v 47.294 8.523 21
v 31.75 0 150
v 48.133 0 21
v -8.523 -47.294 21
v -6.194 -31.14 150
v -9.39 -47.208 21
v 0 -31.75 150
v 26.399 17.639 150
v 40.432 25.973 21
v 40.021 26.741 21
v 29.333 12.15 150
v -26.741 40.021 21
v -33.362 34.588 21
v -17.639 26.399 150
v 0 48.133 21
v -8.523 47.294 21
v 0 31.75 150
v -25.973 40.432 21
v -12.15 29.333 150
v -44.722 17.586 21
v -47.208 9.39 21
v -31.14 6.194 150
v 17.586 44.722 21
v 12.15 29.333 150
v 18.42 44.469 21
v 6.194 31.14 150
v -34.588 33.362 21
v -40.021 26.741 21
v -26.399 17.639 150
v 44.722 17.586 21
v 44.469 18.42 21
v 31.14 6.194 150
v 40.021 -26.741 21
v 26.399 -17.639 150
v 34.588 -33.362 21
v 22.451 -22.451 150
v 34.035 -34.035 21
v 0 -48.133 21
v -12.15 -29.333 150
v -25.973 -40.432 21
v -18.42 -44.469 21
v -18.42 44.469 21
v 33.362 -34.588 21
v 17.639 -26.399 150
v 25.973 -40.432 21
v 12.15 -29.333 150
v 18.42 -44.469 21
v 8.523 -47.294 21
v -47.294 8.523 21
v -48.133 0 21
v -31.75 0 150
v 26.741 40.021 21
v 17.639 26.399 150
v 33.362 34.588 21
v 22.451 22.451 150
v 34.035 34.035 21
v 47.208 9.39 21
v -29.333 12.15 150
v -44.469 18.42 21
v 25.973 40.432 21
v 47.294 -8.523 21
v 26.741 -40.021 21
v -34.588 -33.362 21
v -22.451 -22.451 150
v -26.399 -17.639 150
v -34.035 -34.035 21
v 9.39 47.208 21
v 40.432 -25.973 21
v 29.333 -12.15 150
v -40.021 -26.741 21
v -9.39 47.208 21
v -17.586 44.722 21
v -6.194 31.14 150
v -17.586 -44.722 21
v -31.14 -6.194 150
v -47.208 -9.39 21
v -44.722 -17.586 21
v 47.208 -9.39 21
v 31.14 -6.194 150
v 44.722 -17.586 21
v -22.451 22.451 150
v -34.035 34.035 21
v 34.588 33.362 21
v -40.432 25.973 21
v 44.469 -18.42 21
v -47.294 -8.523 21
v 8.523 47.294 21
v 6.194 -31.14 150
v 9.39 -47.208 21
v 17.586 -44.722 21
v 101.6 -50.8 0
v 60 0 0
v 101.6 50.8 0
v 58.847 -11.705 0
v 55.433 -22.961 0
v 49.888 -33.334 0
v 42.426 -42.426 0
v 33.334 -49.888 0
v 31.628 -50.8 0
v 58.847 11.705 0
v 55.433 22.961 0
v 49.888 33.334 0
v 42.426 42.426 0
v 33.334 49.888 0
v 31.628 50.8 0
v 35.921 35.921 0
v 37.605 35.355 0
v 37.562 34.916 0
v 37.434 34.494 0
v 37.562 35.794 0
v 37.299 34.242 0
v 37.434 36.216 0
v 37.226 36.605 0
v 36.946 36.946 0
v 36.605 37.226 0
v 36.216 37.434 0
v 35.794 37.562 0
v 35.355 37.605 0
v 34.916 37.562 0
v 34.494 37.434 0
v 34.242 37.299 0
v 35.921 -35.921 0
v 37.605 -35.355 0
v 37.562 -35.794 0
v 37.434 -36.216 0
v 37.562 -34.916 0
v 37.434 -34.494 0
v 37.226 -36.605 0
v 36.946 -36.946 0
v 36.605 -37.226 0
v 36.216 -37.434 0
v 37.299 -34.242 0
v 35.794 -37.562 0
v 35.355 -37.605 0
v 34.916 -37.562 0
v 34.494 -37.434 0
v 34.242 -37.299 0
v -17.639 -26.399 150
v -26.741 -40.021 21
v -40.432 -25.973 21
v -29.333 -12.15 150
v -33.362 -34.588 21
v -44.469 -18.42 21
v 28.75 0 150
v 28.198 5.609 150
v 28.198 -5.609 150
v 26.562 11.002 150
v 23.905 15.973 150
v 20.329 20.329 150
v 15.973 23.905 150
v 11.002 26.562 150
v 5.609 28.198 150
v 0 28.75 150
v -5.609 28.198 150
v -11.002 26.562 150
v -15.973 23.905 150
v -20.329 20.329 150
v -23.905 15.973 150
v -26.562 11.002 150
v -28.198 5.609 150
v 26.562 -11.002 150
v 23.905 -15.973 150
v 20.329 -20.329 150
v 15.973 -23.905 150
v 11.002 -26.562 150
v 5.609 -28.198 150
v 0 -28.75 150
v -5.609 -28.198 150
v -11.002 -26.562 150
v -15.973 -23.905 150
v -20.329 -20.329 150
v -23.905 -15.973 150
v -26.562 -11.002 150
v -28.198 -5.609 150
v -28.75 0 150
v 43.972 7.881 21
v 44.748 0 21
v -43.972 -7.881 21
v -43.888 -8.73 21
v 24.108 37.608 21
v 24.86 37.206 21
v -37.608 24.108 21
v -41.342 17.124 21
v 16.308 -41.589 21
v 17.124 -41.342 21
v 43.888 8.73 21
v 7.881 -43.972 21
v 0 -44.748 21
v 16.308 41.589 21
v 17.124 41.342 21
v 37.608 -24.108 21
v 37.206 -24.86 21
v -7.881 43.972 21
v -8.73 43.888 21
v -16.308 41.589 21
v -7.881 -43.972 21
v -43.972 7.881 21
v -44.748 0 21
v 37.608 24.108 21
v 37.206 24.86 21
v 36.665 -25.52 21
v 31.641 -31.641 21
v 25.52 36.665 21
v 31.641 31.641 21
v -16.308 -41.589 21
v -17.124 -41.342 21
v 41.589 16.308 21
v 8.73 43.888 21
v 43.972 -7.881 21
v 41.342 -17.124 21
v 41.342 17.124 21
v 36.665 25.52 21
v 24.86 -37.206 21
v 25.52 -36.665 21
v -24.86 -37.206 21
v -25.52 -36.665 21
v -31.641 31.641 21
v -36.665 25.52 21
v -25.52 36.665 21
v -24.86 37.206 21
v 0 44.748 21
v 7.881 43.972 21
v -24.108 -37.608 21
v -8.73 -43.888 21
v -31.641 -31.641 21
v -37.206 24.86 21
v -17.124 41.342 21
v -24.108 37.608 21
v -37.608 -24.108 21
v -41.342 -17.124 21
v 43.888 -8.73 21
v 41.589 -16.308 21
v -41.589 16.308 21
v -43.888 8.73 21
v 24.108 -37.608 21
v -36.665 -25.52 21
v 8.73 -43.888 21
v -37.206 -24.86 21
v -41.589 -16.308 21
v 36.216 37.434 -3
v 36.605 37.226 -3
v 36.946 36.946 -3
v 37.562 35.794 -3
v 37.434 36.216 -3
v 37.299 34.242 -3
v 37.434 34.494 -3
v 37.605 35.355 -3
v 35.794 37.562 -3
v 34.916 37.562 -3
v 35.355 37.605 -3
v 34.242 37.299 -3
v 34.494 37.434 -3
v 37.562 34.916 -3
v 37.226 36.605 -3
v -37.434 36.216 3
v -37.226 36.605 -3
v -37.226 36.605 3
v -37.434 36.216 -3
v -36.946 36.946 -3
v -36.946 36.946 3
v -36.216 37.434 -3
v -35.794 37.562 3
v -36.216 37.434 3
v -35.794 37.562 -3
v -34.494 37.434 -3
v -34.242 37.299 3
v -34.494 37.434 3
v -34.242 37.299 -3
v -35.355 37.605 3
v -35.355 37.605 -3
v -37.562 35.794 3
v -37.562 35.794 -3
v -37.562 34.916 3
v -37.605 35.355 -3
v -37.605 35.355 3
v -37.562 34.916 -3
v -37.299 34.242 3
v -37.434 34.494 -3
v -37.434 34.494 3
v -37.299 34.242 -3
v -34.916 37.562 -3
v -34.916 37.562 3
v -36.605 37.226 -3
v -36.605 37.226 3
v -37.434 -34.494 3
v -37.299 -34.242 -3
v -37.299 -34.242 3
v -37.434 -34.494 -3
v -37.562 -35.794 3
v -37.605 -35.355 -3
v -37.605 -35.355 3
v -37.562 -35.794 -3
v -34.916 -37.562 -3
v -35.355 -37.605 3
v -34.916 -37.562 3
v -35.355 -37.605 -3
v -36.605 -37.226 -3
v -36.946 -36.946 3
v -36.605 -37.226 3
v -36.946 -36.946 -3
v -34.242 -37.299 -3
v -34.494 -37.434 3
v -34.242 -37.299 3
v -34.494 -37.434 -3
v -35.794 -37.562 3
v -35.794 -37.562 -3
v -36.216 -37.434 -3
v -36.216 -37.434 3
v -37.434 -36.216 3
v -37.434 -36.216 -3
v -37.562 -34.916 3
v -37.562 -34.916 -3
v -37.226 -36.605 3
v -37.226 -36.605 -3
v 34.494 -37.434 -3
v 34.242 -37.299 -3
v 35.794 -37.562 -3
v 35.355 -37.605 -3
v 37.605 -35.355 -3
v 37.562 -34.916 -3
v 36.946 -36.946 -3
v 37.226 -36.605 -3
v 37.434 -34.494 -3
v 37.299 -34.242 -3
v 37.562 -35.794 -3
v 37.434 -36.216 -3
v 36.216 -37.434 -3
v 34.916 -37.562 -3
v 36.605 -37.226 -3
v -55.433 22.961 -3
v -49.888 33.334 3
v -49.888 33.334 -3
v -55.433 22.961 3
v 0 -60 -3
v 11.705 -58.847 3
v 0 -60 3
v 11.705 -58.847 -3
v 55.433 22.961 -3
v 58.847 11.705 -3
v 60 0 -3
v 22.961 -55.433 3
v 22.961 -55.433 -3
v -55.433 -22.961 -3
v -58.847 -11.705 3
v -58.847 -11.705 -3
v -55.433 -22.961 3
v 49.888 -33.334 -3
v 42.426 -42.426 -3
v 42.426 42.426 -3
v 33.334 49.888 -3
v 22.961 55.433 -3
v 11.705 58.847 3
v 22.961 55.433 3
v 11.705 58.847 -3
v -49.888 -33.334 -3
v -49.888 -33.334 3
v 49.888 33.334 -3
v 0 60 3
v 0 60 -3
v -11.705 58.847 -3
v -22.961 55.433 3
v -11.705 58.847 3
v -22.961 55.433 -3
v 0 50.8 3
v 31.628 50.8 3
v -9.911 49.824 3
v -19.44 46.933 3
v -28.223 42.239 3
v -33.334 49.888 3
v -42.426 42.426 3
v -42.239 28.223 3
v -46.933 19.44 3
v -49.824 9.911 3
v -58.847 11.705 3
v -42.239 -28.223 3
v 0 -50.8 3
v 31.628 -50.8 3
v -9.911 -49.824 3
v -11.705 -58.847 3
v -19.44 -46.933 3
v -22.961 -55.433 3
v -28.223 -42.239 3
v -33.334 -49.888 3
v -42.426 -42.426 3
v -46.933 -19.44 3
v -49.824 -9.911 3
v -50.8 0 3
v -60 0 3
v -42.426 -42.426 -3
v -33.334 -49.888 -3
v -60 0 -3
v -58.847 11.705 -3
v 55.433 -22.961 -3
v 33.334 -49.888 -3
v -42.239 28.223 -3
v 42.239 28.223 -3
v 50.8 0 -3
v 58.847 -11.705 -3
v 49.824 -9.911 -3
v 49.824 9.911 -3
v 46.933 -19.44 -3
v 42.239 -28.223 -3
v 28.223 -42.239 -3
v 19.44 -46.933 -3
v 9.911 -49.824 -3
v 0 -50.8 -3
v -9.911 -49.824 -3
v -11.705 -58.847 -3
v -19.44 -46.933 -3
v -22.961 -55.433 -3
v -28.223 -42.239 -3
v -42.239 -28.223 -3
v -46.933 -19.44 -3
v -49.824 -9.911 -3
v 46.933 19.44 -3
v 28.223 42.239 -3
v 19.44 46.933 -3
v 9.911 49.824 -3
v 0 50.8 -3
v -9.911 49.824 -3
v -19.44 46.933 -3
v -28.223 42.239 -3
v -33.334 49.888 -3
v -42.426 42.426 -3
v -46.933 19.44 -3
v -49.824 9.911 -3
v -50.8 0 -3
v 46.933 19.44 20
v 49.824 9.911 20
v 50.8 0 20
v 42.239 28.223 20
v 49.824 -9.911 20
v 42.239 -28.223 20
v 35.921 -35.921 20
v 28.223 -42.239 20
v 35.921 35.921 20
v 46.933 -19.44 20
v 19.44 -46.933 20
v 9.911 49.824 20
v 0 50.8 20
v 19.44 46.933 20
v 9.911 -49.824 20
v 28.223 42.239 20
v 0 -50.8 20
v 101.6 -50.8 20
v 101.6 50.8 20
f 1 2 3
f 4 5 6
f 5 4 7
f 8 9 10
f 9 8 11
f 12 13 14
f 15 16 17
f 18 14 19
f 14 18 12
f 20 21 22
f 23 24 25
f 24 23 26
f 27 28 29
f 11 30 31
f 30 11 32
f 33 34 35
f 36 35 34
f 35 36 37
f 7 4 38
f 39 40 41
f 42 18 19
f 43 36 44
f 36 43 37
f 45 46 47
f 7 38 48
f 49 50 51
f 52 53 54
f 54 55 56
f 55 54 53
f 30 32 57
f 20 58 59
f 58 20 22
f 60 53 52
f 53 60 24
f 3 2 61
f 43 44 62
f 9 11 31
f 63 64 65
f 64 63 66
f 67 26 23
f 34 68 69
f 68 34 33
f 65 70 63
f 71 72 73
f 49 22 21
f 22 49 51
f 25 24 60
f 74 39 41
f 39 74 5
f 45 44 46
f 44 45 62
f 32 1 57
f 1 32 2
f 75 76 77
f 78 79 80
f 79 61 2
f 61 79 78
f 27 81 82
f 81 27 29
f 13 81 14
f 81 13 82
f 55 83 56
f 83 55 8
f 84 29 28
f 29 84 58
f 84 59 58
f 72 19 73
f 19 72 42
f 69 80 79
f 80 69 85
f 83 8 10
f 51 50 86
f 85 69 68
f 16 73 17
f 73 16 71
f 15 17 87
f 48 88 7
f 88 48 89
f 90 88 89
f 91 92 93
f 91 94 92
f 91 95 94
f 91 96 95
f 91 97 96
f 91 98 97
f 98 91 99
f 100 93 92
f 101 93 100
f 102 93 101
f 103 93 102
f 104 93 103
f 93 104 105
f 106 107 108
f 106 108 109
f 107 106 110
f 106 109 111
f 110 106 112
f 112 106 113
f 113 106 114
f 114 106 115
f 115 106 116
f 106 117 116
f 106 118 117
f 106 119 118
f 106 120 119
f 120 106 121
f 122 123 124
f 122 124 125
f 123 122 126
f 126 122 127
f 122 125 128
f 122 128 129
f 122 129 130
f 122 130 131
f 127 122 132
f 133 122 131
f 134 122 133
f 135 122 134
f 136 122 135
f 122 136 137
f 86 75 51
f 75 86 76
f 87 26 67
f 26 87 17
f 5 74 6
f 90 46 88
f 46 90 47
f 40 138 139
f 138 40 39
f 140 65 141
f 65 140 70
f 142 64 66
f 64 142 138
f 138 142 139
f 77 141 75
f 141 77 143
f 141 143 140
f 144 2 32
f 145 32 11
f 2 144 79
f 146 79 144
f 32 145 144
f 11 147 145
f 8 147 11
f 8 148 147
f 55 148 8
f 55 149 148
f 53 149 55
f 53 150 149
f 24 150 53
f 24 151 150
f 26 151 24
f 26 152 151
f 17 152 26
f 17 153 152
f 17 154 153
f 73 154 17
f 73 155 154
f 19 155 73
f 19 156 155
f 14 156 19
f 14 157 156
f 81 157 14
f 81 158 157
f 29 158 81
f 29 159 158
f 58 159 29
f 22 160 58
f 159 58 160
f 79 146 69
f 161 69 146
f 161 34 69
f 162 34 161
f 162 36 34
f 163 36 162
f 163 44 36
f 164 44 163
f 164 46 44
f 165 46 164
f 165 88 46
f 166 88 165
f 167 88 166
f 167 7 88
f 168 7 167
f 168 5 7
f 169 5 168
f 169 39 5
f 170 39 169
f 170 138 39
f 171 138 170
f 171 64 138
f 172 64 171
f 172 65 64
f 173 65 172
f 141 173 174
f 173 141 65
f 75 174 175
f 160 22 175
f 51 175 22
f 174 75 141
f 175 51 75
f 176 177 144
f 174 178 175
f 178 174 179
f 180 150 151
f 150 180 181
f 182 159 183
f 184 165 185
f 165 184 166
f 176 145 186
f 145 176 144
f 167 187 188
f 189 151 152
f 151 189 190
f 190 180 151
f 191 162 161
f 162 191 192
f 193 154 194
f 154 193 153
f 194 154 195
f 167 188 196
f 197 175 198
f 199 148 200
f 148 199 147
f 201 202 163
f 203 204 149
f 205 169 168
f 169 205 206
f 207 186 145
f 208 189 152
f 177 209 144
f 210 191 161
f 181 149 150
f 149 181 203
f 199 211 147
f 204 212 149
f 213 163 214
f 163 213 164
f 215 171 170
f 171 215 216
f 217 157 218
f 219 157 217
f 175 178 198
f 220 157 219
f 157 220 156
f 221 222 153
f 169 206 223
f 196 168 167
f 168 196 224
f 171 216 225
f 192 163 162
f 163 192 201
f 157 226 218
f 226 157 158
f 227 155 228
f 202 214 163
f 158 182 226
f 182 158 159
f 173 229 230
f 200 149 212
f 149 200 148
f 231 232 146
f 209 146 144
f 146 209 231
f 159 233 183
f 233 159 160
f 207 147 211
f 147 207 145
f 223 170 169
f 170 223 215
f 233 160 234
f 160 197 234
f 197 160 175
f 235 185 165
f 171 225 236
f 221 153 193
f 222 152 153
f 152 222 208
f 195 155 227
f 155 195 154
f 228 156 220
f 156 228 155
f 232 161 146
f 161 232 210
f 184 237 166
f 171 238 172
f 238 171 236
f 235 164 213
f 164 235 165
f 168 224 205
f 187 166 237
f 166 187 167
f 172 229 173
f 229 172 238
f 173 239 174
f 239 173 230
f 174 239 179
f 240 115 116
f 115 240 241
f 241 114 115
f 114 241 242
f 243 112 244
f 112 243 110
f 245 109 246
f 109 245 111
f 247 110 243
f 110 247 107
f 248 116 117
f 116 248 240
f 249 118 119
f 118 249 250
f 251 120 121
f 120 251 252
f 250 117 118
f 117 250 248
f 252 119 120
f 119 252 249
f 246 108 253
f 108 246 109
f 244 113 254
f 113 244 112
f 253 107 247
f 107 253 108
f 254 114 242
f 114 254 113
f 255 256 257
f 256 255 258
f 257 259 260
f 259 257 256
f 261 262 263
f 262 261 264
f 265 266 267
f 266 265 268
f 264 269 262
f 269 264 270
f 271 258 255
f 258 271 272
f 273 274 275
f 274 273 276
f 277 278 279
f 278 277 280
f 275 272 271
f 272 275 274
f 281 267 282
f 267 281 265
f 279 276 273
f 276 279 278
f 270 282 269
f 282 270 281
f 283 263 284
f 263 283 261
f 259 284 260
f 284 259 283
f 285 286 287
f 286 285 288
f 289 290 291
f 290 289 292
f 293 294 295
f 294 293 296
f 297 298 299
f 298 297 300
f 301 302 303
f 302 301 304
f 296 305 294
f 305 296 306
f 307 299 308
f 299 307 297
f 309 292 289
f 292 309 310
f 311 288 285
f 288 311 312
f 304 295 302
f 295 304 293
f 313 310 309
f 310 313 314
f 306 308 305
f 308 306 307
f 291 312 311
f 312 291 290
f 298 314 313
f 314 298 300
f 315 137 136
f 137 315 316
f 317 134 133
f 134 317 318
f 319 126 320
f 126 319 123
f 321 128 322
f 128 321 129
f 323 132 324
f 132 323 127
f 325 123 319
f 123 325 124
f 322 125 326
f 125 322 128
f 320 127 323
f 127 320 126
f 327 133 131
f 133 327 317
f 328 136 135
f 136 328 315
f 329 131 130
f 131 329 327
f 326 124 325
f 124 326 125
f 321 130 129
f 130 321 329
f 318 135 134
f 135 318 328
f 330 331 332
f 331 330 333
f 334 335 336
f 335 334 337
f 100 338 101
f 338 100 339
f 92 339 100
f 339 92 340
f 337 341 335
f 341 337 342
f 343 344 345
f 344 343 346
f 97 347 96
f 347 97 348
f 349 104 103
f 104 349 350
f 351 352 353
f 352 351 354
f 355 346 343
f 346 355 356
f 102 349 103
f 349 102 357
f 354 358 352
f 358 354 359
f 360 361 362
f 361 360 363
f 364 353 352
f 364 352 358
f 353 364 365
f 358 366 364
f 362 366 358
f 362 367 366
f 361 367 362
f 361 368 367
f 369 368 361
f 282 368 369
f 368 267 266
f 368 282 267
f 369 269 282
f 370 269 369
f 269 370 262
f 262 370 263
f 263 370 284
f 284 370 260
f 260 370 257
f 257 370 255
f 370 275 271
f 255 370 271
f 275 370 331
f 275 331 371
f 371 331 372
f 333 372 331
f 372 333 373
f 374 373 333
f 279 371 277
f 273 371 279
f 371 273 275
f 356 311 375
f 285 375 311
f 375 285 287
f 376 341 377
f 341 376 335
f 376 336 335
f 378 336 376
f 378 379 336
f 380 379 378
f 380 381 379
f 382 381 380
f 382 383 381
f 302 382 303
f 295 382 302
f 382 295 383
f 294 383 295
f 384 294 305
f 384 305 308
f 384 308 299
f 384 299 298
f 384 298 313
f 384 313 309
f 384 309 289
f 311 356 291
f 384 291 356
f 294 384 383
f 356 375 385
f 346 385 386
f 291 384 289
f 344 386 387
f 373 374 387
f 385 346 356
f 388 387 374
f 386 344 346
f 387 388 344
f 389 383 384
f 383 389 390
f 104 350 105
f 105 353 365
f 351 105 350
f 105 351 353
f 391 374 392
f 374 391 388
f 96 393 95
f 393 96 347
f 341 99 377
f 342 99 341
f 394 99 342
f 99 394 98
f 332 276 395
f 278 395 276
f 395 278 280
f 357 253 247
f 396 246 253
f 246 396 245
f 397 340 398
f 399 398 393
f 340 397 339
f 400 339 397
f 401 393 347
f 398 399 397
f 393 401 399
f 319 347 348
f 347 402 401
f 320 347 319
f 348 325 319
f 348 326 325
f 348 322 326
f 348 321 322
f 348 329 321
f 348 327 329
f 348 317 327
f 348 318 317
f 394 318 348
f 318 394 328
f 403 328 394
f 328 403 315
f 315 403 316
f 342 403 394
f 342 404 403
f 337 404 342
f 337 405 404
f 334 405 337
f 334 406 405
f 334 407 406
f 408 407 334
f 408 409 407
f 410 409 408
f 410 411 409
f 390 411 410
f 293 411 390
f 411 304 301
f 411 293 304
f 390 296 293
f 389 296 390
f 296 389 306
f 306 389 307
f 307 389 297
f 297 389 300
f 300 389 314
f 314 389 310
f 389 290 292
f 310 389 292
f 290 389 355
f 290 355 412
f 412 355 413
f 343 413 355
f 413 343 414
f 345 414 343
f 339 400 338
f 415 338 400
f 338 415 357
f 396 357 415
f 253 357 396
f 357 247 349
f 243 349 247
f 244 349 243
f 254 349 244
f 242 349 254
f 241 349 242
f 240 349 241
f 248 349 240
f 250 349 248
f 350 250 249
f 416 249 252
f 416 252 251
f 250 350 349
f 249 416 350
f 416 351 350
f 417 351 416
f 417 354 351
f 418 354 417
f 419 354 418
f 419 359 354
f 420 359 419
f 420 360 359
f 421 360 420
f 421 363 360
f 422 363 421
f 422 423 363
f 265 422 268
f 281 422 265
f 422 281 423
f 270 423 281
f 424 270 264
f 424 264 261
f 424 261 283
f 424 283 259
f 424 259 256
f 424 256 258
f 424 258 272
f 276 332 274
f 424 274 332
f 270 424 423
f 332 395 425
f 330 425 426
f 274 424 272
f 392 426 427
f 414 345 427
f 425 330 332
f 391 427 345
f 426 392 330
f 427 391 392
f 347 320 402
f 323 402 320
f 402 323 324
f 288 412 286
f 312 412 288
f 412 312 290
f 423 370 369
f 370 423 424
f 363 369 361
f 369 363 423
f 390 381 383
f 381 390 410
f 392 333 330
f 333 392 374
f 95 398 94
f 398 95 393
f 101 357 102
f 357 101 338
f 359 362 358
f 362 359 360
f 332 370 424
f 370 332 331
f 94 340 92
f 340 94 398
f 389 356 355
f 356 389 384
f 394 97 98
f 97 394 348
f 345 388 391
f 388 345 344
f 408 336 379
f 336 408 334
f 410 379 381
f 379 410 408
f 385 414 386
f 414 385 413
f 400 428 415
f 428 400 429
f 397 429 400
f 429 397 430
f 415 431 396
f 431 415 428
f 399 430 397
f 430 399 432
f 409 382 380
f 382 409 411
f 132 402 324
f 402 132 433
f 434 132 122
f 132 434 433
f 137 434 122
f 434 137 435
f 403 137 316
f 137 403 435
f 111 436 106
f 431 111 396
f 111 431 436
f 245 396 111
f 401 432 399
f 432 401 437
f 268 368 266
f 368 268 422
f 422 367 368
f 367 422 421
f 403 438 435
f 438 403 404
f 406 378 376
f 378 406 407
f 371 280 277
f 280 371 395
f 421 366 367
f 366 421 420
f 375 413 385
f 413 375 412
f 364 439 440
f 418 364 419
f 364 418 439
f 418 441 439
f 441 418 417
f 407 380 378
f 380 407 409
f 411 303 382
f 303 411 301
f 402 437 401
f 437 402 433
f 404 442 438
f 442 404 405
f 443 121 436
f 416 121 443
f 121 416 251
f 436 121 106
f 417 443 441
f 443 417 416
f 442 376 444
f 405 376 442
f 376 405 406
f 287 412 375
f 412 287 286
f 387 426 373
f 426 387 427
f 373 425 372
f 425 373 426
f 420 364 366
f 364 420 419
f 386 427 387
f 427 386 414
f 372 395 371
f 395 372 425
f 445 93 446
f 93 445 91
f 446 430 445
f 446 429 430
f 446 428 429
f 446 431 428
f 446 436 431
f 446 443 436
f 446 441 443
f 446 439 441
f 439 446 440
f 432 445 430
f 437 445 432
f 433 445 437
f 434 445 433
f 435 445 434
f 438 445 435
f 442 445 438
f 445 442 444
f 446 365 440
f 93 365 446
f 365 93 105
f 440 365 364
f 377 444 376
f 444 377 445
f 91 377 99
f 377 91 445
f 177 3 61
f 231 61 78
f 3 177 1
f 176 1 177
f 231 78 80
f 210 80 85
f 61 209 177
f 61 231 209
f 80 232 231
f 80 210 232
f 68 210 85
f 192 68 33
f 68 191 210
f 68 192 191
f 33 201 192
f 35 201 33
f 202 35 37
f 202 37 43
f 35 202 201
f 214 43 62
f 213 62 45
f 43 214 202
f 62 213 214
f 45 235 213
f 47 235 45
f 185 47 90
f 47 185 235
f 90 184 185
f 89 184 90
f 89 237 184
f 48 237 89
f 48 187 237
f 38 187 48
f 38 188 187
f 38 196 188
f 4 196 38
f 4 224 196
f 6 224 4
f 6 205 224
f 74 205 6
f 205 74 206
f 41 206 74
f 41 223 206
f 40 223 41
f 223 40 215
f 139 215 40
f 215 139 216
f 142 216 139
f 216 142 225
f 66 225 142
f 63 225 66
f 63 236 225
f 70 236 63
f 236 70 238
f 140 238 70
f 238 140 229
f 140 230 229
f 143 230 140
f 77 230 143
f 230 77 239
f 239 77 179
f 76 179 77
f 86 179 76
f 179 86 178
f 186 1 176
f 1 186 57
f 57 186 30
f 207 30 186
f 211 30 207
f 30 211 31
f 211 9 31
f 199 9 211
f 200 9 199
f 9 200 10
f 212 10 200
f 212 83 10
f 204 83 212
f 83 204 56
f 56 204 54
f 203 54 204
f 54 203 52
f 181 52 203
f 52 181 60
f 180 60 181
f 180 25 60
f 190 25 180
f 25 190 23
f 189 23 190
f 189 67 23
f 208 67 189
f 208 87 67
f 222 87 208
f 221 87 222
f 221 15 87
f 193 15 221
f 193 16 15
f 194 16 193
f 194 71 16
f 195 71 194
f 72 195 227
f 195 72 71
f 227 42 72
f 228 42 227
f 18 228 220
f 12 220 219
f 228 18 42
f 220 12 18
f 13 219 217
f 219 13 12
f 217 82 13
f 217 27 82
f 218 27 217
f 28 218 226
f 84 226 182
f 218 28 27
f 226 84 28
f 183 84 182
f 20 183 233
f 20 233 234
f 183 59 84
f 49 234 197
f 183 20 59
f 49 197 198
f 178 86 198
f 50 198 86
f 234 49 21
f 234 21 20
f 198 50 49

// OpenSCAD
// file: trap_modules.scad
// ShopVac Rat Trap - Shared Modules
// Updated with actual component dimensions from BOM

// Global resolution
$fn = 32;

// === Tube Parameters ===
tube_outer_diameter = 101.6;  // 4 inches in mm (standard PVC size)
tube_wall_thickness = 3.2;    // Standard wall thickness
tube_inner_diameter = tube_outer_diameter - (2 * tube_wall_thickness);

// === Flange Parameters ===
flange_diameter = 120;         // Outer flange diameter
flange_thickness = 6;          // Flange thickness
flange_screw_hole_diameter = 4.5;  // M4 clearance holes
flange_screw_hole_inset = 10;  // Distance from flange edge

// === Center Joint - Alignment Pins ===
alignment_pin_diameter = 6;    // 6mm diameter pins
alignment_pin_length = 8;      // 8mm insertion depth
alignment_pin_radius = tube_outer_diameter/2 - 25;  // Position on flange
alignment_pin_clearance = 0.3; // Extra clearance for holes

// === Center Joint - O-Ring Seal ===
oring_groove_width = 3;        // Width of groove (for 2.5mm O-ring)
oring_groove_depth = 1.5;      // Depth of groove

// === STEMMA QT Sensor Mounts (Adafruit Standard) ===
// Standard STEMMA QT board: 17.78mm × 25.4mm (0.7" × 1.0")
stemma_qt_board_width = 17.78;   // Standard width
stemma_qt_board_length = 25.4;   // Standard length
stemma_qt_hole_diameter = 2.7;   // M2.5 clearance holes
stemma_qt_hole_spacing_w = 12.7; // Hole spacing width (0.5")
stemma_qt_hole_spacing_l = 20.3; // Hole spacing length (~0.8")
stemma_qt_mount_thickness = 3;   // Mount base thickness
stemma_qt_standoff_height = 5;   // PCB standoff height

// === PIR Sensor Mount (Adafruit 4871) ===
// Larger board: 32mm × 24mm
pir_board_width = 24;
pir_board_length = 32;
pir_hole_diameter = 3.2;      // M3 clearance
pir_hole_spacing = 28;        // Between mounting holes
pir_dome_diameter = 12;       // PIR dome clearance
pir_dome_height = 8;          // Dome projection

// ========== MODULES ==========

module flange(outer_diameter, thickness, screw_hole_diameter, screw_hole_inset) {
    difference() {
        cylinder(d = outer_diameter, h = thickness, center = true);
        cylinder(d = tube_outer_diameter, h = thickness + 1, center = true);

        // Screw holes
        for (a = [45, 135, 225, 315]) {
            rotate([0, 0, a]) {
                translate([outer_diameter/2 - screw_hole_inset, 0, 0]) {
                    cylinder(d = screw_hole_diameter, h = thickness + 1, center = true);
                }
            }
        }
    }
}

module tube(length, outer_diameter, wall_thickness) {
     difference() {
        cylinder(d=outer_diameter, h=length, center=true);
        cylinder(d=outer_diameter - (2*wall_thickness), h=length+1, center=true);
    }
}
// main file
// ShopVac Rat Trap - Funnel Adapter (Refactored)
// Engineer: Gemini
// Date: 2024-11-15
//
// ========== REVISION HIGHLIGHTS ==========
// - REFACTORED: Replaced snap-fit connectors with a robust flanged connection.
// - MODULAR: Utilizes shared modules from `trap_modules.scad`.
// - PARAMETRIC: Funnel and nozzle dimensions are now fully parametric.
// - IMPROVED: Includes a flat base for stability during printing and assembly.
// =========================================

include <trap_modules.scad>

// ========== CORE PARAMETERS ==========

// [Dimensions]
funnel_length = 150;
flat_base_height = 20;

// [Nozzle Dimensions]
nozzle_outer_diameter = 63.5; // 2.5 inches
nozzle_wall_thickness = 3;

// ========== MODULES ==========

module trap_funnel_adapter() {
    difference() {
        union() {
            // Main funnel body
            translate([0,0,funnel_length/2]) {
                 difference() {
                    cylinder(h = funnel_length, d1 = tube_outer_diameter, d2 = nozzle_outer_diameter, center = true);
                    translate([0,0,-1]) {
                        cylinder(h = funnel_length+2, d1 = tube_outer_diameter - (2*tube_wall_thickness), d2 = nozzle_outer_diameter - (2*nozzle_wall_thickness), center = true);
                    }
                }
            }

            // Flange at the connection end
            translate([0, 0, 0]) {
                flange(flange_diameter, flange_thickness, flange_screw_hole_diameter, flange_screw_hole_inset);
            }

            // Flat base for stability
            translate([0, -tube_outer_diameter/2, 0]) {
                cube([tube_outer_diameter, tube_outer_diameter, flat_base_height]);
            }
        }

        // Cut away top of base to match tube profile
        translate([0,0,-1]) {
            cylinder(d=tube_outer_diameter, h=flat_base_height+2);
        }
    }
}

// ========== ASSEMBLY CALL ==========
trap_funnel_adapter();
